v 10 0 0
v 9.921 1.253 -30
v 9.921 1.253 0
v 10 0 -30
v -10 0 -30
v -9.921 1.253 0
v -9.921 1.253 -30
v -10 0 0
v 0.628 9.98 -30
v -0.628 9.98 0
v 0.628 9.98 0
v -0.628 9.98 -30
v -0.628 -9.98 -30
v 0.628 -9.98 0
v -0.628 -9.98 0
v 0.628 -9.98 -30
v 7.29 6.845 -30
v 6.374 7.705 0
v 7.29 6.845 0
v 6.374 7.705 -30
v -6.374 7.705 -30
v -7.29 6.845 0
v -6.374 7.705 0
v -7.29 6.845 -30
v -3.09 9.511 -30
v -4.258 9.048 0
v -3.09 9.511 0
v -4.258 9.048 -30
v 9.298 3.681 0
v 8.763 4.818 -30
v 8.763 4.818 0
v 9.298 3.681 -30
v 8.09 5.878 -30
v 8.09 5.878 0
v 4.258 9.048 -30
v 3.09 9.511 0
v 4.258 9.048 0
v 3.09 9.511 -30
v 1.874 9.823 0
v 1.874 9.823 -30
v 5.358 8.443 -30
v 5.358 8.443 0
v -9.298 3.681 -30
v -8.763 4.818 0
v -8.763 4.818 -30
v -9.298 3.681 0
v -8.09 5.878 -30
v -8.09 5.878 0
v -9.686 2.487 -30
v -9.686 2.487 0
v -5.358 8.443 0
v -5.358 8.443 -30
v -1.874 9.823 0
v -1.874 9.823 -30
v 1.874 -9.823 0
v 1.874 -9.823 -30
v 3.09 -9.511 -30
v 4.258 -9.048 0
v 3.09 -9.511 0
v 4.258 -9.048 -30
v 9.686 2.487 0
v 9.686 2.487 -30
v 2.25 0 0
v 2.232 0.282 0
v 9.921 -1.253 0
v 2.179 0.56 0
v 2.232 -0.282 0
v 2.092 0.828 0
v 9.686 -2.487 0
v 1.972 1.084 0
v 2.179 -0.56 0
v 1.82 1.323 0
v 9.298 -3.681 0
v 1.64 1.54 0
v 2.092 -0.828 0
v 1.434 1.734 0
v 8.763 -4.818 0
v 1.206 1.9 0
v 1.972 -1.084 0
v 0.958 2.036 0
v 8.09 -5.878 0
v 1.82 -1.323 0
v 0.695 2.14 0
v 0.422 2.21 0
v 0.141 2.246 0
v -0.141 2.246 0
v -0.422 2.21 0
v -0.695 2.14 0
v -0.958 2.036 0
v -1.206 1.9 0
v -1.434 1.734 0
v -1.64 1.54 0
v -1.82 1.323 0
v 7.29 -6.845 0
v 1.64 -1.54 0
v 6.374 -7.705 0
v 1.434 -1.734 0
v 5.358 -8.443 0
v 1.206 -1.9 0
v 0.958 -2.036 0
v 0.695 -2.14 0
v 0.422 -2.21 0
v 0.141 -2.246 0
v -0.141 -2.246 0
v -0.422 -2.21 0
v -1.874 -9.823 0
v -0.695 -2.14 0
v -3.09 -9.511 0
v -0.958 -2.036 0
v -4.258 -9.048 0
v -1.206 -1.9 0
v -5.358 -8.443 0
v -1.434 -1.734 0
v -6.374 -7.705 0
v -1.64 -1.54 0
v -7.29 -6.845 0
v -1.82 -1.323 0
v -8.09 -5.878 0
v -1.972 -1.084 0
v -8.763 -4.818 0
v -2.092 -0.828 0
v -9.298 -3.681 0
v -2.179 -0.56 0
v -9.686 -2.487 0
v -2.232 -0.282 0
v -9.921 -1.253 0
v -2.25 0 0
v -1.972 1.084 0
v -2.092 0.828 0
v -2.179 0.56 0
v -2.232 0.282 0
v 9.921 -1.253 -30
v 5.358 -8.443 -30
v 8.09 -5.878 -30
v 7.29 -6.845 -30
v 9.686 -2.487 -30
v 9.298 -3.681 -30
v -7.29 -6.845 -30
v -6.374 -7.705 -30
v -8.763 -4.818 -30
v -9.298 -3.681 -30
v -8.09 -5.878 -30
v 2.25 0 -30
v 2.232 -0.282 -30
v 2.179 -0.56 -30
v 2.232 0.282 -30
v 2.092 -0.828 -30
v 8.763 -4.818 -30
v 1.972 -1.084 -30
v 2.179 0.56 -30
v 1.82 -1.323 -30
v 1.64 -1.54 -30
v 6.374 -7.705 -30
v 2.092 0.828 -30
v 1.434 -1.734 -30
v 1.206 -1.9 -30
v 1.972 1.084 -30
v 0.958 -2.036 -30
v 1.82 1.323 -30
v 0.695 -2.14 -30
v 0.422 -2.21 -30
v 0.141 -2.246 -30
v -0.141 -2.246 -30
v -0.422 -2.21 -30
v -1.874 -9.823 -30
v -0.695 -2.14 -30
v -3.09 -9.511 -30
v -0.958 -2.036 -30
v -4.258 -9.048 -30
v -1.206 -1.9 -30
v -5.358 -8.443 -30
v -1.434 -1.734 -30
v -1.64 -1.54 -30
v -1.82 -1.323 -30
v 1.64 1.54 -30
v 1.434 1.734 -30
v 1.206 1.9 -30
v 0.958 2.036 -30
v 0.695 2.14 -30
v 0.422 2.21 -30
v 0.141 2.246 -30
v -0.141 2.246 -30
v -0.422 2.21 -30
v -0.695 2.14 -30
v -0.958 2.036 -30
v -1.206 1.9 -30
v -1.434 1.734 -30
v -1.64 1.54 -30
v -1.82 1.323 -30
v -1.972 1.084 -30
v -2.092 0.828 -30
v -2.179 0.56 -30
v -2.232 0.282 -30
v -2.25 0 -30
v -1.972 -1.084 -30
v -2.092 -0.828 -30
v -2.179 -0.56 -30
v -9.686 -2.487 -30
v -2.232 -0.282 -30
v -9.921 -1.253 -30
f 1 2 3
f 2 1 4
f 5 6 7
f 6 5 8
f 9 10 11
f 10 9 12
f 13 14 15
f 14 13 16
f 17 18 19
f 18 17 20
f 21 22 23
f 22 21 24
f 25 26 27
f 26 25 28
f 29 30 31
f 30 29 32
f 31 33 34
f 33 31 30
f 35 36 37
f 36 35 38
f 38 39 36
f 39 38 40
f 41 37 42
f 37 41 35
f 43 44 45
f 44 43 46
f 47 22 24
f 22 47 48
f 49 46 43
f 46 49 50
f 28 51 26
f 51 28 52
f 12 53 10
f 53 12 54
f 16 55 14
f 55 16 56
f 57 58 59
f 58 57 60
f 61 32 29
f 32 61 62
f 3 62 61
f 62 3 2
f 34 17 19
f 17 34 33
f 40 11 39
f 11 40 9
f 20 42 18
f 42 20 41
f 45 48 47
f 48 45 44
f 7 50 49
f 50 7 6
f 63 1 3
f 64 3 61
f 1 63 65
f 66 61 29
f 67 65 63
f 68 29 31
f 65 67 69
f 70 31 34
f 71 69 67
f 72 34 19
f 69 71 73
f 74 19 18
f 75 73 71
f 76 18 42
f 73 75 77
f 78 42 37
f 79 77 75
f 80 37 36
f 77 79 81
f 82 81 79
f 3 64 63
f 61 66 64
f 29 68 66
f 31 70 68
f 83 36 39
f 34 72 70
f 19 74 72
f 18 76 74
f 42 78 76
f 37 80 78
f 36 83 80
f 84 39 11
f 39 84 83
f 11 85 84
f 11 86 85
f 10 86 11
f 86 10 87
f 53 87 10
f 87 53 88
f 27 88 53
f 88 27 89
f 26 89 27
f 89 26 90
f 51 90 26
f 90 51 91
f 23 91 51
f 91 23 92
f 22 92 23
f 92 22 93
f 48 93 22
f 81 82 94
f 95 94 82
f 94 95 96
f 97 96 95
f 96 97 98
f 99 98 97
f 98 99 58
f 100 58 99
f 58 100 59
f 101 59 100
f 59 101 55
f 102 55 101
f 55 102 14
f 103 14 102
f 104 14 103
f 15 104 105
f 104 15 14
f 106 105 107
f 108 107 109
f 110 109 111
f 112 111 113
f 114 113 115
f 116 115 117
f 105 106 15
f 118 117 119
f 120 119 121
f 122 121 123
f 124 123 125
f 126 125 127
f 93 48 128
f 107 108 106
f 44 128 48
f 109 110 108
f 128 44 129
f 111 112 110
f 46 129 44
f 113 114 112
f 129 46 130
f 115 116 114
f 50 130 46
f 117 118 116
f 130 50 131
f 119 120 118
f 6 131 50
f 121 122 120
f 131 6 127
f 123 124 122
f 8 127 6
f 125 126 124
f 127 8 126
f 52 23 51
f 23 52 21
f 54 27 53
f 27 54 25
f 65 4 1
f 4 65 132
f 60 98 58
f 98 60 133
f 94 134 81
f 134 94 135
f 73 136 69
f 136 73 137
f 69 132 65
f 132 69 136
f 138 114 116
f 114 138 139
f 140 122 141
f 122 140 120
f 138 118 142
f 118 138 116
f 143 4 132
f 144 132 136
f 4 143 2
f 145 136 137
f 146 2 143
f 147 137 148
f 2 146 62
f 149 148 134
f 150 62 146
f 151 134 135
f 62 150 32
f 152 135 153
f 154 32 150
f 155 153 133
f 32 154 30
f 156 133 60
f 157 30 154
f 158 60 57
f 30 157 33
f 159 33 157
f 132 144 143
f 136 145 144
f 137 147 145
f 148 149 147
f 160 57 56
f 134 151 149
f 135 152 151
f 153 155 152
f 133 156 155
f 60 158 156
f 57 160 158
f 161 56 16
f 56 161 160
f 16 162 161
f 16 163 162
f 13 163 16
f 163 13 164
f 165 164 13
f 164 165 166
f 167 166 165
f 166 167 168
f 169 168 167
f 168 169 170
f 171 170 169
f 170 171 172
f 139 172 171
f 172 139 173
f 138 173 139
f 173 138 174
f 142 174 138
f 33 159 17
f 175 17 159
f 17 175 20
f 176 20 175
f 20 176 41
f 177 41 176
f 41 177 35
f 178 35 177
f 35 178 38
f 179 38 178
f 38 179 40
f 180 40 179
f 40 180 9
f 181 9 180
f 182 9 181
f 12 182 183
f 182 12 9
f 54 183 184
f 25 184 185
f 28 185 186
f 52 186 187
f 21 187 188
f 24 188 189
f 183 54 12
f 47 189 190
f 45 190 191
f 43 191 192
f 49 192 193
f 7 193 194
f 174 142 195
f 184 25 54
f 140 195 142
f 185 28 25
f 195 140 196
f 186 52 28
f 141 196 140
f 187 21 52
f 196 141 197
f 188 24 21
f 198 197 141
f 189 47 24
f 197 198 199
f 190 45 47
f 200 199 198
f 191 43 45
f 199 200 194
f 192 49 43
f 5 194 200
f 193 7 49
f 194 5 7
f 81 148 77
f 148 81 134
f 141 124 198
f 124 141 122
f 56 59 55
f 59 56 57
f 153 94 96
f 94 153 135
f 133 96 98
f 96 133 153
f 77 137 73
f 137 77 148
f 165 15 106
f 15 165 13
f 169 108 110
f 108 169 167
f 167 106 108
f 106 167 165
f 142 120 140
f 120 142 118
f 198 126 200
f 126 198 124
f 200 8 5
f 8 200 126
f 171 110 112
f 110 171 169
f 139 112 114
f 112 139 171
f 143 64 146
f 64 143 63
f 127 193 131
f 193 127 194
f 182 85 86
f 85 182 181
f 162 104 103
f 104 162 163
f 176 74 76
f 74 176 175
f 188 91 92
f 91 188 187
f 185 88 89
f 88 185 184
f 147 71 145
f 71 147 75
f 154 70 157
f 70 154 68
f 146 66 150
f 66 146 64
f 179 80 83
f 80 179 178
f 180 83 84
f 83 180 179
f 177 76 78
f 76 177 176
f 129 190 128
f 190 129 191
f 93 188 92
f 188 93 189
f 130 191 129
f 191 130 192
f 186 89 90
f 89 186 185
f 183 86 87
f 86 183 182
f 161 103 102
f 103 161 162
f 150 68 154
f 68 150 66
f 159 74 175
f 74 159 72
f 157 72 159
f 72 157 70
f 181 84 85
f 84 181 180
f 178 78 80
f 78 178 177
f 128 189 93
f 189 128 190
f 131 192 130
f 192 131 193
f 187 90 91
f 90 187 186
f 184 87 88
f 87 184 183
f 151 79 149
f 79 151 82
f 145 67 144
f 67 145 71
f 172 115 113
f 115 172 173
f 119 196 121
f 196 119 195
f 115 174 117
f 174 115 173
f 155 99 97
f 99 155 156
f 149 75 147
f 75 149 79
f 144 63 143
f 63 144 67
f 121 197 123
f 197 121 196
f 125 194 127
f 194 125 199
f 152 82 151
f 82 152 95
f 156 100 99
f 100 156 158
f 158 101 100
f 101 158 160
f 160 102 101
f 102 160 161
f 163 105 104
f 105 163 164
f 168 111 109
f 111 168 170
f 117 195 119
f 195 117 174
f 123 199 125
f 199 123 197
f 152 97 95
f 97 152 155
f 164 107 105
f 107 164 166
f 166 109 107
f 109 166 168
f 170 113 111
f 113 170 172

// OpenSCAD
$fn = 50;


difference() {
	union() {
		translate(v = [0, 0, -30.0000000000]) {
			cylinder(h = 30, r = 10.0000000000);
		}
		cylinder(h = 0, r = 16.0000000000);
	}
	union() {
		#translate(v = [0, 0, -30]) {
			cylinder(h = 30, r = 2.2500000000);
		}
	}
}
